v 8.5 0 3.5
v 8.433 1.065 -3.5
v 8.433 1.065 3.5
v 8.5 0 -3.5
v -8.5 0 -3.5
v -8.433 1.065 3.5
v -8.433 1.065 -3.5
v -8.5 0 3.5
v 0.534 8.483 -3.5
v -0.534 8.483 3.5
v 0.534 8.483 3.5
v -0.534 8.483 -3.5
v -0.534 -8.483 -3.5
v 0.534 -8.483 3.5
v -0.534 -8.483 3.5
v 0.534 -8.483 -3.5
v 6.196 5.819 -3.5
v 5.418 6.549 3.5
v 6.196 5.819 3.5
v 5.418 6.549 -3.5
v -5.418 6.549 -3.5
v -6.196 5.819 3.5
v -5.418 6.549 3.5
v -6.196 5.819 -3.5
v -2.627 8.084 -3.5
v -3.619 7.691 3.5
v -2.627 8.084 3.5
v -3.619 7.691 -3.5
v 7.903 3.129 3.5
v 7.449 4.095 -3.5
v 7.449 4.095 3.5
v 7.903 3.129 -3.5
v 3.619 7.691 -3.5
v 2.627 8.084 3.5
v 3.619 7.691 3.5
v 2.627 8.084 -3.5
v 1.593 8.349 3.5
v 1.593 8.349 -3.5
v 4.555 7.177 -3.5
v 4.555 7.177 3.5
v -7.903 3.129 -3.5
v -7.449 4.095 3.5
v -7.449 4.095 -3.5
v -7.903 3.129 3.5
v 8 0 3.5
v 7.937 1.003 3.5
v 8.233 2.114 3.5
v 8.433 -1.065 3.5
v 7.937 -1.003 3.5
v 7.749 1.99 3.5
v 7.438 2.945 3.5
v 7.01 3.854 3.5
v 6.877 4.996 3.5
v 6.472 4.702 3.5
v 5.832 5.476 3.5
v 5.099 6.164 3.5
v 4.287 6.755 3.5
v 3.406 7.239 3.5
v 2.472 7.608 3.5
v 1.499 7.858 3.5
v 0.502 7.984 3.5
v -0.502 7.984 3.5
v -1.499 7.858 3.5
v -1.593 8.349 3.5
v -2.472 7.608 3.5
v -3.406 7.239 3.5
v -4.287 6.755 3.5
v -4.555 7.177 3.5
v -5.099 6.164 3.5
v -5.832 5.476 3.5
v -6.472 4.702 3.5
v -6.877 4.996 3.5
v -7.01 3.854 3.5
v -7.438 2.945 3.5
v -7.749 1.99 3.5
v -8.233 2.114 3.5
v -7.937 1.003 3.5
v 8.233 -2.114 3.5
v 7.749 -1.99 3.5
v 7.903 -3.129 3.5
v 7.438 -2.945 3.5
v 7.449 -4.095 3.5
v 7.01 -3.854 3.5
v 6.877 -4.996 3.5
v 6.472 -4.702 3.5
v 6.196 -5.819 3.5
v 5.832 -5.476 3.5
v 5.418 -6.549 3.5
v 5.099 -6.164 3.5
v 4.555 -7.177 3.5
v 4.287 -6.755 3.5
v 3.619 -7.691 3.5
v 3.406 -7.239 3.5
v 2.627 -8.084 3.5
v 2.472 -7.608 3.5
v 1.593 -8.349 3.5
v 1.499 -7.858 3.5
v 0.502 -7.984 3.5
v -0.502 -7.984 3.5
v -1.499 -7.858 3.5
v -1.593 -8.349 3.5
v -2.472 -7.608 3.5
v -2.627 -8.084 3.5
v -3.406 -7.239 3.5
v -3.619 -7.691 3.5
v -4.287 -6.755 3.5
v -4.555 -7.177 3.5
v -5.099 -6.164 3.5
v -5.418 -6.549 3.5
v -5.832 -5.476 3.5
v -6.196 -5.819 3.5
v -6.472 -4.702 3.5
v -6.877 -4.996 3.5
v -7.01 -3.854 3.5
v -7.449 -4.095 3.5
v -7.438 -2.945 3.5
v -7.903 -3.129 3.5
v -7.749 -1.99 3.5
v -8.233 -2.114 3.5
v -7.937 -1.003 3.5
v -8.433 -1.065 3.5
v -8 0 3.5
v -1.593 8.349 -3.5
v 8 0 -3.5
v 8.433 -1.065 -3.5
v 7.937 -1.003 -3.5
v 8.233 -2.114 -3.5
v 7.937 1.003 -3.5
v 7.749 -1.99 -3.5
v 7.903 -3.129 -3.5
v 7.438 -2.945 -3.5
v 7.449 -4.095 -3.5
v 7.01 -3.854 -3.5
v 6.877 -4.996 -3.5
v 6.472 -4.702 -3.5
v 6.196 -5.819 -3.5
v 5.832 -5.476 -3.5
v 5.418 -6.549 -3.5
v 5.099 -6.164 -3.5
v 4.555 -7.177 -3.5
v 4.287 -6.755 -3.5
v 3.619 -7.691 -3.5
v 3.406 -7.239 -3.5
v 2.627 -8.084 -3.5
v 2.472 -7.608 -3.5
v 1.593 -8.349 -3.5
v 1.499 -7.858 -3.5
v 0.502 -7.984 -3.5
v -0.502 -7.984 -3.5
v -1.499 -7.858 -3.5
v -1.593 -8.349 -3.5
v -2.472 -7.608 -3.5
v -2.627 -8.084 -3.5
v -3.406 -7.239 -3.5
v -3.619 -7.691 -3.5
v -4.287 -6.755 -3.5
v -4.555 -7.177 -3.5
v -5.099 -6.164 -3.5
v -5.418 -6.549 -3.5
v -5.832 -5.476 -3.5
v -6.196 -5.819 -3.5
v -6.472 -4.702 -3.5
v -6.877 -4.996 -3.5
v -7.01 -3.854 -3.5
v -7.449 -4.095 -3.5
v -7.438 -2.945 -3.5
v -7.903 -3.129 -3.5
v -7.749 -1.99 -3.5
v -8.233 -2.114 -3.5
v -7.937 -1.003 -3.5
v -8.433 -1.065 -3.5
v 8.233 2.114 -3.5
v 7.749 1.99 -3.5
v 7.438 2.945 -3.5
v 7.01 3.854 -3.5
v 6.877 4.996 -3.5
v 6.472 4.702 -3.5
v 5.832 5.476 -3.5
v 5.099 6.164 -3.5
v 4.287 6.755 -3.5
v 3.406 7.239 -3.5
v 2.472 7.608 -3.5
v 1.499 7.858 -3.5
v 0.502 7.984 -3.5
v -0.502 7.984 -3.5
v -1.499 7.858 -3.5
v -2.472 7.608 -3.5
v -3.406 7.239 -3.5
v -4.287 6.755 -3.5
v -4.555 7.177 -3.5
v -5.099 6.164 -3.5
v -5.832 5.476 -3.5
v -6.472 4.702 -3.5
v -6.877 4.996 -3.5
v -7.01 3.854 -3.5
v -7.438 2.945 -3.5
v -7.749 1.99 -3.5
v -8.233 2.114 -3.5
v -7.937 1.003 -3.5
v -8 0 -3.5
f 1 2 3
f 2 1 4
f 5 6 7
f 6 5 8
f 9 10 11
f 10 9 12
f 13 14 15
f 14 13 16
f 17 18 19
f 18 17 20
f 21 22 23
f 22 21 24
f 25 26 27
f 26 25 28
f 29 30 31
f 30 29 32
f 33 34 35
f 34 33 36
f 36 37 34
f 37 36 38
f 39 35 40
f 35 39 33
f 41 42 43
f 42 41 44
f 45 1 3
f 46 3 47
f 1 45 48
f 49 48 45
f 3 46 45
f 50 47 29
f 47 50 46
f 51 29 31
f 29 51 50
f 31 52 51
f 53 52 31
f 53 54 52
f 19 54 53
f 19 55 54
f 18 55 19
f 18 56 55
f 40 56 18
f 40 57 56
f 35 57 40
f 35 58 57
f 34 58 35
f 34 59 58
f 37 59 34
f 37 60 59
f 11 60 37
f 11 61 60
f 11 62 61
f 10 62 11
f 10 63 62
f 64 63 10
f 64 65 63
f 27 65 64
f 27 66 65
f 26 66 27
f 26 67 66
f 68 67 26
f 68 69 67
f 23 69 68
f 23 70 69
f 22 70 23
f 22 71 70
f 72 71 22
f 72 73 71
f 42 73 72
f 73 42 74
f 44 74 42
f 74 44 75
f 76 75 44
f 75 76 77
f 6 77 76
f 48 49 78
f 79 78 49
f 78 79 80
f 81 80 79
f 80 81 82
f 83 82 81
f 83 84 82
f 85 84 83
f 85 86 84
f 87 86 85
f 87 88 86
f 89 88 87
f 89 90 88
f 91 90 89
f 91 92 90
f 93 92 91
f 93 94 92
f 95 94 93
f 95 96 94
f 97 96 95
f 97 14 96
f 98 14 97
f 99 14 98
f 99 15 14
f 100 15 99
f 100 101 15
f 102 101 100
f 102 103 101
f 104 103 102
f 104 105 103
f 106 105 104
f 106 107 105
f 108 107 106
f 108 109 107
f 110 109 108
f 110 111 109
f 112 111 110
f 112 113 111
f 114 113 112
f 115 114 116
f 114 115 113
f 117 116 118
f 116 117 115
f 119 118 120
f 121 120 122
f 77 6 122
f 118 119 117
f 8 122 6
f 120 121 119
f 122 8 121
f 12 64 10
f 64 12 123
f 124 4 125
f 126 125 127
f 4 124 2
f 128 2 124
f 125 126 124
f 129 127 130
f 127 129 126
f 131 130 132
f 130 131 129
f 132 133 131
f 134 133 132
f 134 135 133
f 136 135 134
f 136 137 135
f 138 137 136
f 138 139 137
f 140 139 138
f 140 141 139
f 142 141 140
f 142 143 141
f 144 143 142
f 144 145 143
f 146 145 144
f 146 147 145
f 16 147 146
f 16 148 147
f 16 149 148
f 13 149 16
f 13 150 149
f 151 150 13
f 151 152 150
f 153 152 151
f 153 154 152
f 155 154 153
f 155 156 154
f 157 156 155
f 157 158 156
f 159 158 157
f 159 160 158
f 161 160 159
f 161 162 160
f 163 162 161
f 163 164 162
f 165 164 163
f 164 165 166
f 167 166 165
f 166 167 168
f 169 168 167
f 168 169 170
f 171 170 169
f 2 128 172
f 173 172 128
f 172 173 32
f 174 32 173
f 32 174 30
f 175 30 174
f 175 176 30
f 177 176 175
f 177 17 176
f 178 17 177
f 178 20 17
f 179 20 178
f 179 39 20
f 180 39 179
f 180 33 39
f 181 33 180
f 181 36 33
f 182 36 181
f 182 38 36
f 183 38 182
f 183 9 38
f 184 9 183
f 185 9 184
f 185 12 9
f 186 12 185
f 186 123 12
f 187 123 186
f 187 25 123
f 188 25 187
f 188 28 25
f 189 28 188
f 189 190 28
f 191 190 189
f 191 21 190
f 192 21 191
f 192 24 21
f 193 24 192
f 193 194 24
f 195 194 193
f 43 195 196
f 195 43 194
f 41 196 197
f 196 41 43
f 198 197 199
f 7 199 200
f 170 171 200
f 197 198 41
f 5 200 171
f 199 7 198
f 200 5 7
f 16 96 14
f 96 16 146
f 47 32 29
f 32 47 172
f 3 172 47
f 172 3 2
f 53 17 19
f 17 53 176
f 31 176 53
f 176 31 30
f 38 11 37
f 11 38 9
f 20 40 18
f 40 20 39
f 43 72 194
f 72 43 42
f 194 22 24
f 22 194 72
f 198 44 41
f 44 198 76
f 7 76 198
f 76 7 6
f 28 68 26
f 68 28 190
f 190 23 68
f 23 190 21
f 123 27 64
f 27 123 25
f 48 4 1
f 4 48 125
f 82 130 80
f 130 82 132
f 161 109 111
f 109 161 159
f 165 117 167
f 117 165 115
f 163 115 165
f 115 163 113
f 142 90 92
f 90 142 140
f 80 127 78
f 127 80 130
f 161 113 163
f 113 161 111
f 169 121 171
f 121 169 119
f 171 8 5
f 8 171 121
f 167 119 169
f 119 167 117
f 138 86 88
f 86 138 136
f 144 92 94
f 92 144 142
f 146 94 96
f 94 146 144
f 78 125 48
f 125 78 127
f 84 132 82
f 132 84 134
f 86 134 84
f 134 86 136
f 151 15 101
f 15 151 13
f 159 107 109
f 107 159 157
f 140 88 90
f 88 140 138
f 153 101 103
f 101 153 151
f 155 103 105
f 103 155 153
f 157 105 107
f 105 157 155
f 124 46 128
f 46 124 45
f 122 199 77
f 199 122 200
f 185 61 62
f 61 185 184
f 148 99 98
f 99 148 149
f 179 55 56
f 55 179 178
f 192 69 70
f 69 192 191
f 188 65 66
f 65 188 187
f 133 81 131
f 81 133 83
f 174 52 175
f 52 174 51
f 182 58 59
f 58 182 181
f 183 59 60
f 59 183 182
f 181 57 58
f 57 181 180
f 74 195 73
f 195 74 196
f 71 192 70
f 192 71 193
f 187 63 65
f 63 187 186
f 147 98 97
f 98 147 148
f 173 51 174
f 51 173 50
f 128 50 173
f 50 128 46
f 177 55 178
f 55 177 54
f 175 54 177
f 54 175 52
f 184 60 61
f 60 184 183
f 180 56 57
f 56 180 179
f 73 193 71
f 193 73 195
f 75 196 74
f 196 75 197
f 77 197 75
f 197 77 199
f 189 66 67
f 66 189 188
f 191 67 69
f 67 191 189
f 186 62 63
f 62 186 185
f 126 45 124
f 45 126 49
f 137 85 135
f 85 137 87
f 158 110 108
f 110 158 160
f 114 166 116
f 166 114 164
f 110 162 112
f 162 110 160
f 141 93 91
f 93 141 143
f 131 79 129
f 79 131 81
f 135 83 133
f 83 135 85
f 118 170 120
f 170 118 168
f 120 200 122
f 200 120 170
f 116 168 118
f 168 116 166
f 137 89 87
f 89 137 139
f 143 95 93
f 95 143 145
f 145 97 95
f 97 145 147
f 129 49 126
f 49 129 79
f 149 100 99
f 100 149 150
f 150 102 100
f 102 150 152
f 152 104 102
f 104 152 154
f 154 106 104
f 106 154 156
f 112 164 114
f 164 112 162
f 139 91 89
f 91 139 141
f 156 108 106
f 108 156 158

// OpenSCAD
$fn = 50;


difference() {
	union() {
		translate(v = [0, 0, -3.5000000000]) {
			cylinder(h = 7, r = 8.5000000000);
		}
	}
	union() {
		translate(v = [0, 0, -100.0000000000]) {
			cylinder(h = 200, r = 8);
		}
	}
}
